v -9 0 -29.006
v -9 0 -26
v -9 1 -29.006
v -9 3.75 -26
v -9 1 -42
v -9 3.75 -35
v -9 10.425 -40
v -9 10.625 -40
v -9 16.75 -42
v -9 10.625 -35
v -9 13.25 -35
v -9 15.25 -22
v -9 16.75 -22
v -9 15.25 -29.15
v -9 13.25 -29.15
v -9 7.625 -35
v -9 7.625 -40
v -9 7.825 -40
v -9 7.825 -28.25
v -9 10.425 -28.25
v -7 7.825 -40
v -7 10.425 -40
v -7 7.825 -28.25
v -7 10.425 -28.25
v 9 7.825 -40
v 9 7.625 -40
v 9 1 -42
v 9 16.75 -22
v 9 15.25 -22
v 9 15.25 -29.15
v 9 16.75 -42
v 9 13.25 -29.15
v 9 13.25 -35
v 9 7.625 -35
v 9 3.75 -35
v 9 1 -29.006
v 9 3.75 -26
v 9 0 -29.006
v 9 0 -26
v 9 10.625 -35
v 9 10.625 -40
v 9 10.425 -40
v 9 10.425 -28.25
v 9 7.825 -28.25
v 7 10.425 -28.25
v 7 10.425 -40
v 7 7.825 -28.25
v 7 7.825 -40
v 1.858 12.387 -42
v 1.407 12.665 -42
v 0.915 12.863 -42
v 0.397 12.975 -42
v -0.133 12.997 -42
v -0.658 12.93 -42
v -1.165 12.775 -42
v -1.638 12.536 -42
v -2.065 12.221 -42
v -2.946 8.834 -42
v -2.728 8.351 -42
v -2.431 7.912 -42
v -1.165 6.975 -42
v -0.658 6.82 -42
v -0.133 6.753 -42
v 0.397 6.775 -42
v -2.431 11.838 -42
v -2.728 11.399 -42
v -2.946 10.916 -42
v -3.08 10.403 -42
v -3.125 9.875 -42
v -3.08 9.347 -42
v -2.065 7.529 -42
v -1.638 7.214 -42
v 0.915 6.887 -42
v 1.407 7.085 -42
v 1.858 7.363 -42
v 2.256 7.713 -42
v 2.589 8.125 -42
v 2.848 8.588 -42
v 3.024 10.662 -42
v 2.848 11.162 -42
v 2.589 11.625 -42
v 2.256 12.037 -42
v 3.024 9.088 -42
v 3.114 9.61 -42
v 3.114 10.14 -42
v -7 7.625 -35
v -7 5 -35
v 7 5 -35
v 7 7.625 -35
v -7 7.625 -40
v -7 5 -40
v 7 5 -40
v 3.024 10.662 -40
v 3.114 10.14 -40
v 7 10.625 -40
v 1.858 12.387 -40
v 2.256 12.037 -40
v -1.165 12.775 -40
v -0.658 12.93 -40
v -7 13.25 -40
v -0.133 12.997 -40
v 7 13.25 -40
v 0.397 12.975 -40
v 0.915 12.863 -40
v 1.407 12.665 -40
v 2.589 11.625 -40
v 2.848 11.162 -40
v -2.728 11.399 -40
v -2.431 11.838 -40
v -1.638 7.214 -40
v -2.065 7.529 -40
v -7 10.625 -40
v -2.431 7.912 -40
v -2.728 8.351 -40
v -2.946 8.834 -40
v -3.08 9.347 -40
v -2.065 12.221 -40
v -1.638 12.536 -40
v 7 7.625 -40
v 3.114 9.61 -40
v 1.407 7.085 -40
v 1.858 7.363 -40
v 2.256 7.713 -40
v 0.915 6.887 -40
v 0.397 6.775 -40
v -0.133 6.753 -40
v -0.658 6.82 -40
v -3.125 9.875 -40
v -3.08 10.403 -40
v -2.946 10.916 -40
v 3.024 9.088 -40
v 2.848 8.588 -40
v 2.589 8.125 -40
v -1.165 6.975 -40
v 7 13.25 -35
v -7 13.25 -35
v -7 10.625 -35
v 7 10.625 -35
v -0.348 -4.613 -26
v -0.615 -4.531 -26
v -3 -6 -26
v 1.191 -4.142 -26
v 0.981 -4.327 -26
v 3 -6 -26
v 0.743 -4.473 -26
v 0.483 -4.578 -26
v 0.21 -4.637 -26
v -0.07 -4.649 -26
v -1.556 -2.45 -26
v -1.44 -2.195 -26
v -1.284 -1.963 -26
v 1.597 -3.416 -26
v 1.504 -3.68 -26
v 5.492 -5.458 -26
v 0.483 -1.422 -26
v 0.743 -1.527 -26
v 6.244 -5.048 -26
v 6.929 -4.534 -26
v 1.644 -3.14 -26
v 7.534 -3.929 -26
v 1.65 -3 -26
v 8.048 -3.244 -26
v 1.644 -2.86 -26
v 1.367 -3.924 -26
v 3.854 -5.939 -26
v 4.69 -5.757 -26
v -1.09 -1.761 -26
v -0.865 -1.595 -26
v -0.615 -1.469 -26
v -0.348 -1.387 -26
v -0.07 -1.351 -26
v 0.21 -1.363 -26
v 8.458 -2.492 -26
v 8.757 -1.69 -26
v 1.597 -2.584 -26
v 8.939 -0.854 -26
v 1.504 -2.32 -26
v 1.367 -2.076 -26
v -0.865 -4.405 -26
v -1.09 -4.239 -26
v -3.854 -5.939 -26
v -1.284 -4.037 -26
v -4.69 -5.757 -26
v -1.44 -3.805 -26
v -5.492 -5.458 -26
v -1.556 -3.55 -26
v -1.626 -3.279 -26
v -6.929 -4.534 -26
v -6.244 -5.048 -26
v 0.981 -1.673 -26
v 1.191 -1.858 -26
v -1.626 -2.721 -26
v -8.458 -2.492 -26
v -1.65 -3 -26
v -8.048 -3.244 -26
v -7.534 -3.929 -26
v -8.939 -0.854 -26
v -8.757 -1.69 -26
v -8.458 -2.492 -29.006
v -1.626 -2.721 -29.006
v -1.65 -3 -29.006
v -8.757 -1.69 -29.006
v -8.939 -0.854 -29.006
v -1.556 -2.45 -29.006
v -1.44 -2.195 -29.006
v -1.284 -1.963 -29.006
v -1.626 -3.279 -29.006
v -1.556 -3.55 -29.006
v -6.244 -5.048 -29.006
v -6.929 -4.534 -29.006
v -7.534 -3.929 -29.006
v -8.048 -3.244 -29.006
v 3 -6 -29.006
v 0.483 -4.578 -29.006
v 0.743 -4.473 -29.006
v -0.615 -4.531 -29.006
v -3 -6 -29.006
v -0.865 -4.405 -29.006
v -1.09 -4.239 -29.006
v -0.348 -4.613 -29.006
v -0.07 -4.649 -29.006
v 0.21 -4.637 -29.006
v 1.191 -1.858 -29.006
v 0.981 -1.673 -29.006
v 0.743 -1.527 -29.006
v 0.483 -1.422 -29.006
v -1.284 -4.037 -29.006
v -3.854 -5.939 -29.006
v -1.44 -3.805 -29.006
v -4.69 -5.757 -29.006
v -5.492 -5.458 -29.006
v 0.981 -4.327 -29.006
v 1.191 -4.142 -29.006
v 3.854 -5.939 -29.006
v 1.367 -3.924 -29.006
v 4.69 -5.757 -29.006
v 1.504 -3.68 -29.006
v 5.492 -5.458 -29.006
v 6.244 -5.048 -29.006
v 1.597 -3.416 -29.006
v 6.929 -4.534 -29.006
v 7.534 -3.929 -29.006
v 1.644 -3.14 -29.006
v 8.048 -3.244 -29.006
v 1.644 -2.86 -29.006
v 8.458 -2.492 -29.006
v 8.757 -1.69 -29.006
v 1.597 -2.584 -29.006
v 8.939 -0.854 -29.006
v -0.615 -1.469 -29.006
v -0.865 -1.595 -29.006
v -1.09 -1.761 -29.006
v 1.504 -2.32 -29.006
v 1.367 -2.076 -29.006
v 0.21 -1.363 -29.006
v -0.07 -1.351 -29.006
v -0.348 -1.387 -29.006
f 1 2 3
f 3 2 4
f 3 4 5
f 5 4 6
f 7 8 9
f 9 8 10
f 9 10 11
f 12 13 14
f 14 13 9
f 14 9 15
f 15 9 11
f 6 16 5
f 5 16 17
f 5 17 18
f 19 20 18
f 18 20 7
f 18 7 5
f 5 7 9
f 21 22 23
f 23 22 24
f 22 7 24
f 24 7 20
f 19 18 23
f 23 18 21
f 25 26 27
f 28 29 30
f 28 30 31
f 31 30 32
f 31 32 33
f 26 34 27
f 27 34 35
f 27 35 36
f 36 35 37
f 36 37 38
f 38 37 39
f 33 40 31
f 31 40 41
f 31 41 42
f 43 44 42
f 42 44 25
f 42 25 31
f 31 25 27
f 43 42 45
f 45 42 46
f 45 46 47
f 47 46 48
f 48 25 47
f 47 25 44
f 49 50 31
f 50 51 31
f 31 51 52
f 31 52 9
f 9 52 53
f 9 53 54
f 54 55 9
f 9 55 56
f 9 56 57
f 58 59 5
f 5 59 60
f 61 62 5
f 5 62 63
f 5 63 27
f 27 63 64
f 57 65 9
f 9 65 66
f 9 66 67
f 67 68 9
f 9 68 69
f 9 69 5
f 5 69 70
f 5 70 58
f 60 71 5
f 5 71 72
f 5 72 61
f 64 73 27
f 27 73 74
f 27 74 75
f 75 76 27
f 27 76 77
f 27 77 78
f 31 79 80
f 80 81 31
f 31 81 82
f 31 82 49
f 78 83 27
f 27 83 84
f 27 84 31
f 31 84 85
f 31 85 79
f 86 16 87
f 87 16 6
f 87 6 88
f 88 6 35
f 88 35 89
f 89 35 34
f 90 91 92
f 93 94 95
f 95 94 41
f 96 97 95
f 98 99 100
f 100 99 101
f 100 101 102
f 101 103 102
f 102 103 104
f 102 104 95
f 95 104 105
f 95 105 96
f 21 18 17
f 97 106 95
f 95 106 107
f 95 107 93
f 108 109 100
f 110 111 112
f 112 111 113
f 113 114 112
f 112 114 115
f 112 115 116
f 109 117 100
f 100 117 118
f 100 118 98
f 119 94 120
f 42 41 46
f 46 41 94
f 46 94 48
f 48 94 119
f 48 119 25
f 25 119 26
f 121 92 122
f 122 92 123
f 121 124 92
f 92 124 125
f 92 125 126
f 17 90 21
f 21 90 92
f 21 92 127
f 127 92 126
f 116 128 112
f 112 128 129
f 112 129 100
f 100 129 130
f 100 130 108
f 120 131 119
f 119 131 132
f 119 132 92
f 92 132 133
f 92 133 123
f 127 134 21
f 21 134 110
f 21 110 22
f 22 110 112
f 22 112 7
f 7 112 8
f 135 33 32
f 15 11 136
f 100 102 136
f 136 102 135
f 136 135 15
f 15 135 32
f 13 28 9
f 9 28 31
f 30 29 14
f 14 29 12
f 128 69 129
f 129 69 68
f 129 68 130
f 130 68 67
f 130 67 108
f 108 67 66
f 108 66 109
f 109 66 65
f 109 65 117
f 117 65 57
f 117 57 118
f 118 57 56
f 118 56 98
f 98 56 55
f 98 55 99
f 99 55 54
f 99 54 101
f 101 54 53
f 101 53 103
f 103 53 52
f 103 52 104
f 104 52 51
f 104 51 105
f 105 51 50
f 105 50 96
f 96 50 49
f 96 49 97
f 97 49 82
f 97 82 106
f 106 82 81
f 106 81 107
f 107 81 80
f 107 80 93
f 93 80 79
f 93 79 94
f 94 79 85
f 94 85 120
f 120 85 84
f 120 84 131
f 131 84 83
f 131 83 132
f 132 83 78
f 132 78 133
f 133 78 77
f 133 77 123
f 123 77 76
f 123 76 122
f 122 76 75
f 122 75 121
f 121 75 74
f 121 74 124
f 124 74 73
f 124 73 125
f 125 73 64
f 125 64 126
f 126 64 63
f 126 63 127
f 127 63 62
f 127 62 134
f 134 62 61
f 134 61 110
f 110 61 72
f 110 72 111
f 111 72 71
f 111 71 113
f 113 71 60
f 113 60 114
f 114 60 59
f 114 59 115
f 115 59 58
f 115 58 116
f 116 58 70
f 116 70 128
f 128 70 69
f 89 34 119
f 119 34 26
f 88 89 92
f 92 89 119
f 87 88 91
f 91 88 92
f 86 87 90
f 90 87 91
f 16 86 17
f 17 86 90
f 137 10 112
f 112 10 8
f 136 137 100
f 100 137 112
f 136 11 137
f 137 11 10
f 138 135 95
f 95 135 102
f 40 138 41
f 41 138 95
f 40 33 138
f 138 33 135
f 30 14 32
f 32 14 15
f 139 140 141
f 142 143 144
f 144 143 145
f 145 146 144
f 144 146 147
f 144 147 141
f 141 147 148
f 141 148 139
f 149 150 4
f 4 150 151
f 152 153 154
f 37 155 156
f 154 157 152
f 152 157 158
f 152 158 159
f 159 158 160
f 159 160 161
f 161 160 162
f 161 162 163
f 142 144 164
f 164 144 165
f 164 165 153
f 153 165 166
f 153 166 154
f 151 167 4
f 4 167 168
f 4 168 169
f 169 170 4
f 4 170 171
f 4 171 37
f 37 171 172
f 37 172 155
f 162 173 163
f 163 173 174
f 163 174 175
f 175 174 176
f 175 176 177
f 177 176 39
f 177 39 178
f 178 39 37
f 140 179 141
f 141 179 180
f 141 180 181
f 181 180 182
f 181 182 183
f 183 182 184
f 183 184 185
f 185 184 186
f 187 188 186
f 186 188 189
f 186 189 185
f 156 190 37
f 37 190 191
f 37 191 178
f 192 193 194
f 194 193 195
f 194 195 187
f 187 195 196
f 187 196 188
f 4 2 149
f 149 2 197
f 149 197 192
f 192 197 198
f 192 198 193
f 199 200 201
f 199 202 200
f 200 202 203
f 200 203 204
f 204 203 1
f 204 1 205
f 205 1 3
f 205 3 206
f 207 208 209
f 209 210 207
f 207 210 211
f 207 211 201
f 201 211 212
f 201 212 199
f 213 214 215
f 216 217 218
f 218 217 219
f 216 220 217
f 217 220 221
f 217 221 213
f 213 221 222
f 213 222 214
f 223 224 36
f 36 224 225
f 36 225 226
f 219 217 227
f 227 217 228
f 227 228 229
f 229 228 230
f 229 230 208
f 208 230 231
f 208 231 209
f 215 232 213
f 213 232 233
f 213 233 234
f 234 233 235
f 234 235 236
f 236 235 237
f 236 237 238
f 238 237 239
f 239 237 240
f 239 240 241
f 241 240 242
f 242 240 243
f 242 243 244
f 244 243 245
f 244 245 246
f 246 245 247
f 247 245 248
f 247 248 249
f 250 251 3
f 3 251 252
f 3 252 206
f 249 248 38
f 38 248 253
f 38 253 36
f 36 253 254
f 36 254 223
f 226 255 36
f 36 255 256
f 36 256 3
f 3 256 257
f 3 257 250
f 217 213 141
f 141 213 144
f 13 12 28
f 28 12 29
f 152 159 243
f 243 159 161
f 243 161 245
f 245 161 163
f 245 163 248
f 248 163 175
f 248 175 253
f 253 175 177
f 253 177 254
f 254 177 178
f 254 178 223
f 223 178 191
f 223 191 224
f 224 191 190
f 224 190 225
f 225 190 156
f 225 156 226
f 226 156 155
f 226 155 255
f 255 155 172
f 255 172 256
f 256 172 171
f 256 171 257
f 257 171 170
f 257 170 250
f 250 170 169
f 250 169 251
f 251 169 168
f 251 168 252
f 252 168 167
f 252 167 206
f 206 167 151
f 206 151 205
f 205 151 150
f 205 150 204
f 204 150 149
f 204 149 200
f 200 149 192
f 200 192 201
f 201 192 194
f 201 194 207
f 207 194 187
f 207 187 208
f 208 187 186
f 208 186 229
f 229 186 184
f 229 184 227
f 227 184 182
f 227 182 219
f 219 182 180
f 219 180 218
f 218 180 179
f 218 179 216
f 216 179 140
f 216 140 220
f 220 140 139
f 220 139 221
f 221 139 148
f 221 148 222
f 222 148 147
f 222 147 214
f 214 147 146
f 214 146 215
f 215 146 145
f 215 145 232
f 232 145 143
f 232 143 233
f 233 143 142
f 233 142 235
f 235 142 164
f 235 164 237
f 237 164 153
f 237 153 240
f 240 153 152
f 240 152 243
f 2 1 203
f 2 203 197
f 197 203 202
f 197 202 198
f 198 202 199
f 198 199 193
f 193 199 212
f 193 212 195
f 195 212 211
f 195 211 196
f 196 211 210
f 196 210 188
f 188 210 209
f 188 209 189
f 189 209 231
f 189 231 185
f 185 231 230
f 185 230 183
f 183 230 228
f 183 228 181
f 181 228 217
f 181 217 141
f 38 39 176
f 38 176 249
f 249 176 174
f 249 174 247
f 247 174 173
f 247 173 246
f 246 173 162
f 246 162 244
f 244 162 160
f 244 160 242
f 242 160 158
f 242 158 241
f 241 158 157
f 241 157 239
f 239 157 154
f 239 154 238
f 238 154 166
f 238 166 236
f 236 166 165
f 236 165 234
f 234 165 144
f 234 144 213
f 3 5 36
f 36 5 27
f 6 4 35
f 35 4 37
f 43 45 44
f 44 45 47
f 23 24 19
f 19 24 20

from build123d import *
from build123d.topology import SkipClean

# Parameters (mm, degrees)
ESBO_O1_R                 = 1.65
RESSALTO_EXTRUS_O1_DEPTH  = 3
RESSALTO_EXTRUS_O2_START  = 15
ESBO_O2_R                 = 1.65
RESSALTO_EXTRUS_O2_DEPTH  = 15
CORTE_EXTRUS_O1_DEPTH     = 15
RESSALTO_EXTRUS_O3_DEPTH  = 2
ESBO_O6_W                 = 23.468316857
ESBO_O6_H                 = 21.298976644
CORTE_EXTRUS_O2_DEPTH     = 21
ESBO_O7_W                 = 18
ESBO_O7_H                 = 18
RESSALTO_EXTRUS_O4_DEPTH  = 2
CORTE_EXTRUS_O3_DEPTH     = 5
ESBO_O9_W                 = 18
ESBO_O9_H                 = 2
CORTE_EXTRUS_O4_DEPTH     = 8
ESBO_O10_W                = 18
ESBO_O10_H                = 12.25
RESSALTO_EXTRUS_O5_DEPTH  = 2
RESSALTO_EXTRUS_O6_DEPTH  = 5.85
ESBO_O12_W                = 2
ESBO_O12_H                = 2.6
RESSALTO_EXTRUS_O7_DEPTH  = 9.75
ESBO_O13_W                = 18
ESBO_O13_H                = 7.85
RESSALTO_EXTRUS_O8_DEPTH  = 1.5
ESBO_O14_W                = 18
ESBO_O14_H                = 1.5
RESSALTO_EXTRUS_O9_DEPTH  = 5.15
ESBO_O15_R                = 3.125
CORTE_EXTRUS_O5_DEPTH     = 5.15
ESBO_O16_W                = 2
ESBO_O16_H                = 2.625
RESSALTO_EXTRUS_O10_DEPTH = 5
ESBO_O18_W                = 2
ESBO_O18_H                = 2.6
RESSALTO_EXTRUS_O11_DEPTH = 5
ESBO_O19_W                = 18
ESBO_O19_H                = 2
RESSALTO_EXTRUS_O12_DEPTH = 5
ESBO_O20_W                = 18
ESBO_O20_H                = 1.5
RESSALTO_EXTRUS_O13_DEPTH = 5
ESBO_O21_W                = 18
ESBO_O21_H                = 7
RESSALTO_EXTRUS_O14_DEPTH = 3
ESBO_O22_W                = 18
ESBO_O22_H                = 2.75
RESSALTO_EXTRUS_O15_DEPTH = 9
ESBO_O23_W                = 18
ESBO_O23_H                = 3.006158343
RESSALTO_EXTRUS_O16_DEPTH = 6
ESBO_O24_W                = 27.560641217
ESBO_O24_H                = 36.557163592
CORTE_EXTRUS_O6_DEPTH     = 26
ESBO_O25_W                = 18
ESBO_O25_H                = 1.5
RESSALTO_EXTRUS_O17_DEPTH = 2
ESBO_O26_R                = 1.65
CORTE_EXTRUS_O7_DEPTH     = 10
FILETE1_R                 = 6
ESBO_O27_W                = 18
ESBO_O27_H                = 12.993841657
CORTE_EXTRUS_O8_DEPTH     = 1
ESBO_O28_W                = 18
ESBO_O28_H                = 9
RESSALTO_EXTRUS_O18_DEPTH = 1
ESBO_O29_W                = 2
ESBO_O29_H                = 2.6
CORTE_EXTRUS_O9_DEPTH     = 3


with BuildPart() as part:
    # Esboço1 → Ressalto-extrusão1 (new body)
    # profile 1 of 3: a face of its own
    with BuildSketch(Plane.XY):
        Polygon((-7, 15.25), (-9, 15.25), (-9, 13.25), (-9, 5), (-6.541451884, 0), (-2.020725942, -6), (2.020725942, -6), (6.541451884, 0), (9, 5), (9, 15.25), (7, 15.25), align=None)
        Polygon((2.020725942, -3.5), (4.041451884, 0), (2.020725942, 3.5), (-2.020725942, 3.5), (-4.041451884, 0), (-2.020725942, -3.5), align=None, mode=Mode.SUBTRACT)
        Polygon((-7, 13.25), (-7, 5), (0, 5), (7, 5), (7, 13.25), align=None, mode=Mode.SUBTRACT)
    # profile 2 of 3: a face of its own
    with BuildSketch(Plane.XY):
        Polygon((7, 13.25), (-7, 13.25), (-7, 5), (0, 5), (7, 5), align=None)
    # profile 3 of 3: a face of its own
    with BuildSketch(Plane.XY):
        Polygon((-2.020725942, -3.5), (2.020725942, -3.5), (4.041451884, 0), (2.020725942, 3.5), (-2.020725942, 3.5), (-4.041451884, 0), align=None)
        Circle(ESBO_O1_R, mode=Mode.SUBTRACT)
    extrude(amount=RESSALTO_EXTRUS_O1_DEPTH)

    # Esboço2 → Ressalto-extrusão2 (add)
    # profile 1 of 2: a face of its own
    with SkipClean():  # the faces are left unmerged after this step: merging them gives an invalid solid
        with BuildSketch(Plane(origin=(0, 0, 0), x_dir=(-1, 0, 0), z_dir=(0, 0, -1)).offset(RESSALTO_EXTRUS_O2_START)):
            Polygon((9, 5), (9, 15.25), (-9, 15.25), (-9, 5), (-6.541451884, 0), (-2.020725942, -6), (2.020725942, -6), (6.541451884, 0), align=None)
            Polygon((7, 5), (7, 13.25), (-7, 13.25), (-7, 5), (0, 5), align=None, mode=Mode.SUBTRACT)
            Polygon((-4.041451884, 0), (-2.020725942, -3.5), (2.020725942, -3.5), (4.041451884, 0), (2.020725942, 3.5), (-2.020725942, 3.5), align=None, mode=Mode.SUBTRACT)
        # profile 2 of 2: a face of its own
        with BuildSketch(Plane(origin=(0, 0, 0), x_dir=(-1, 0, 0), z_dir=(0, 0, -1)).offset(RESSALTO_EXTRUS_O2_START)):
            Polygon((-2.020725942, 3.5), (-4.041451884, 0), (-2.020725942, -3.5), (2.020725942, -3.5), (4.041451884, 0), (2.020725942, 3.5), align=None)
            Circle(ESBO_O2_R, mode=Mode.SUBTRACT)
        extrude(amount=-RESSALTO_EXTRUS_O2_DEPTH)

    # Esboço3 → Corte-extrusão1 (cut)
    with SkipClean():  # the faces are left unmerged after this step: merging them gives an invalid solid
        with BuildSketch(Plane(origin=(0, 0, -15), x_dir=(-1, 0, 0), z_dir=(0, 0, -1))):
            Polygon((-9, 10.625), (-9, 9.125), (-9, 7.625), (-7, 7.625), (-7, 10.625), align=None)
            Polygon((9, 7.625), (9, 9.125), (9, 10.625), (7, 10.625), (7, 7.625), align=None)
        extrude(amount=-CORTE_EXTRUS_O1_DEPTH, mode=Mode.SUBTRACT)

    # Esboço5 → Ressalto-extrusão3 (add)
    with SkipClean():  # the faces are left unmerged after this step: merging them gives an invalid solid
        with BuildSketch(Plane(origin=(0, 0, 0), x_dir=(-1, 0, 0), z_dir=(0, 0, -1))):
            Polygon((-1.583333333, 13.25), (-2.333333333, 13.25), (-3.083333333, 13.25), (-3.083333333, 5), (-1.583333333, 5), align=None)
        extrude(amount=RESSALTO_EXTRUS_O3_DEPTH)

    # Esboço6 → Corte-extrusão2 (cut)
    with BuildSketch(Plane(origin=(0, -16, 0), x_dir=(-1, 0, 0), z_dir=(0, -1, 0))):
        with Locations((-0.042259875, 5.70418088)):
            Rectangle(ESBO_O6_W, ESBO_O6_H)
    extrude(amount=-CORTE_EXTRUS_O2_DEPTH, mode=Mode.SUBTRACT)

    # Esboço7 → Ressalto-extrusão4 (add)
    with BuildSketch(Plane.XZ.offset(-5)):
        with Locations((0, -6)):
            Rectangle(ESBO_O7_W, ESBO_O7_H)
    extrude(amount=RESSALTO_EXTRUS_O4_DEPTH)

    # Esboço8 → Corte-extrusão3 (cut)
    with BuildSketch(Plane(origin=(0, 0, -15), x_dir=(-1, 0, 0), z_dir=(0, 0, -1))):
        Polygon((7, 7.625), (7, 5), (-7, 5), (-7, 7.625), (-9, 7.625), (-9, 3), (9, 3), (9, 7.625), align=None)
        Polygon((7, 10.625), (9, 10.625), (9, 15.25), (-9, 15.25), (-9, 10.625), (-7, 10.625), (-7, 13.25), (7, 13.25), align=None)
    extrude(amount=-CORTE_EXTRUS_O3_DEPTH, mode=Mode.SUBTRACT)

    # Esboço9 → Corte-extrusão4 (cut)
    with BuildSketch(Plane(origin=(0, 0, -10), x_dir=(-1, 0, 0), z_dir=(0, 0, -1))):
        with Locations((0, 14.25)):
            Rectangle(ESBO_O9_W, ESBO_O9_H)
    extrude(amount=-CORTE_EXTRUS_O4_DEPTH, mode=Mode.SUBTRACT)

    # Esboço24 → Corte-extrusão6 (cut)
    with BuildSketch(Plane.XY.offset(13)):
        with Locations((-1.631661855, 4.199263035)):
            Rectangle(ESBO_O24_W, ESBO_O24_H)
    extrude(amount=-CORTE_EXTRUS_O6_DEPTH, mode=Mode.SUBTRACT)


with BuildPart() as body_2:
    # Esboço10 → Ressalto-extrusão5 (new body)
    with BuildSketch(Plane(origin=(0, 0, -40), x_dir=(-1, 0, 0), z_dir=(0, 0, -1))):
        with Locations((0, 9.125)):
            Rectangle(ESBO_O10_W, ESBO_O10_H)
    extrude(amount=RESSALTO_EXTRUS_O5_DEPTH)

    # Esboço11 → Ressalto-extrusão6 (add)
    with BuildSketch(Plane.XY.offset(-40)):
        Polygon((9, 15.25), (-9, 15.25), (-9, 13.25), (-7, 13.25), (1.583333333, 13.25), (3.083333333, 13.25), (7, 13.25), (9, 13.25), align=None)
    extrude(amount=RESSALTO_EXTRUS_O6_DEPTH)

    # Esboço12 → Ressalto-extrusão7 (add)
    with BuildSketch(Plane.XY.offset(-40)):
        with Locations((8, 9.125)):
            Rectangle(ESBO_O12_W, ESBO_O12_H)
        with Locations((-8, 9.125)):
            Rectangle(ESBO_O12_W, ESBO_O12_H)
    extrude(amount=RESSALTO_EXTRUS_O7_DEPTH)

    # Esboço13 → Ressalto-extrusão8 (add)
    with BuildSketch(Plane(origin=(0, 15.25, 0), x_dir=(1, 0, 0), z_dir=(0, 1, 0))):
        with Locations((0, 38.075)):
            Rectangle(ESBO_O13_W, ESBO_O13_H)
    extrude(amount=RESSALTO_EXTRUS_O8_DEPTH)

    # Esboço14 → Ressalto-extrusão9 (add)
    with BuildSketch(Plane.XY.offset(-34.15)):
        with Locations((0, 16)):
            Rectangle(ESBO_O14_W, ESBO_O14_H)
    extrude(amount=RESSALTO_EXTRUS_O9_DEPTH)

    # Esboço15 → Corte-extrusão5 (cut)
    with BuildSketch(Plane(origin=(0, 0, -42), x_dir=(-1, 0, 0), z_dir=(0, 0, -1))):
        with Locations((0, 9.875)):
            Circle(ESBO_O15_R)
    extrude(amount=-CORTE_EXTRUS_O5_DEPTH, mode=Mode.SUBTRACT)

    # Esboço16 → Ressalto-extrusão10 (add)
    with BuildSketch(Plane.XY.offset(-40)):
        Polygon((-7, 7.625), (-9, 7.625), (-9, 3), (9, 3), (9, 7.625), (7, 7.625), (7, 5), (-7, 5), align=None)
        with Locations((-8, 11.9375)):
            Rectangle(ESBO_O16_W, ESBO_O16_H)
        with Locations((8, 11.9375)):
            Rectangle(ESBO_O16_W, ESBO_O16_H)
    extrude(amount=RESSALTO_EXTRUS_O10_DEPTH)

    # Esboço18 → Ressalto-extrusão11 (add)
    with BuildSketch(Plane.XY.offset(-30.25)):
        with Locations((-8, 9.125)):
            Rectangle(ESBO_O18_W, ESBO_O18_H)
        with Locations((8, 9.125)):
            Rectangle(ESBO_O18_W, ESBO_O18_H)
    extrude(amount=RESSALTO_EXTRUS_O11_DEPTH)

    # Esboço19 → Ressalto-extrusão12 (add)
    with BuildSketch(Plane.XY.offset(-34.15)):
        with Locations((0, 14.25)):
            Rectangle(ESBO_O19_W, ESBO_O19_H)
    extrude(amount=RESSALTO_EXTRUS_O12_DEPTH)

    # Esboço20 → Ressalto-extrusão13 (add)
    with BuildSketch(Plane.XY.offset(-29)):
        with Locations((0, 16)):
            Rectangle(ESBO_O20_W, ESBO_O20_H)
    extrude(amount=RESSALTO_EXTRUS_O13_DEPTH)

    # Esboço21 → Ressalto-extrusão14 (add)
    with BuildSketch(Plane.XZ.offset(-3)):
        with Locations((0, -38.5)):
            Rectangle(ESBO_O21_W, ESBO_O21_H)
    extrude(amount=RESSALTO_EXTRUS_O14_DEPTH)

    # Esboço22 → Ressalto-extrusão15 (add)
    with BuildSketch(Plane.XY.offset(-35)):
        with Locations((0, 1.375)):
            Rectangle(ESBO_O22_W, ESBO_O22_H)
    extrude(amount=RESSALTO_EXTRUS_O15_DEPTH)

    # Esboço23 → Ressalto-extrusão16 (add)
    with BuildSketch(Plane.XZ):
        with Locations((0, -27.503079172)):
            Rectangle(ESBO_O23_W, ESBO_O23_H)
    extrude(amount=RESSALTO_EXTRUS_O16_DEPTH)

    # Esboço25 → Ressalto-extrusão17 (add)
    with BuildSketch(Plane.XY.offset(-24)):
        with Locations((0, 16)):
            Rectangle(ESBO_O25_W, ESBO_O25_H)
    extrude(amount=RESSALTO_EXTRUS_O17_DEPTH)

    # Esboço26 → Corte-extrusão7 (cut)
    with BuildSketch(Plane(origin=(0, 0, -29.006158343), x_dir=(-1, 0, 0), z_dir=(0, 0, -1))):
        with Locations((0, -3)):
            Circle(ESBO_O26_R)
    extrude(amount=-CORTE_EXTRUS_O7_DEPTH, mode=Mode.SUBTRACT)

    # Filete1
    filete1_edges = [body_2.edges().sort_by_distance(p)[0] for p in [
        (-9, -6, -27.503079172),
        (9, -6, -27.503079172),
    ]]
    fillet(filete1_edges, radius=FILETE1_R)

    # Esboço27 → Corte-extrusão8 (cut)
    with BuildSketch(Plane.XZ):
        with Locations((0, -35.503079172)):
            Rectangle(ESBO_O27_W, ESBO_O27_H)
    extrude(amount=-CORTE_EXTRUS_O8_DEPTH, mode=Mode.SUBTRACT)

    # Esboço28 → Ressalto-extrusão18 (add)
    with BuildSketch(Plane(origin=(0, 2.75, 0), x_dir=(1, 0, 0), z_dir=(0, 1, 0))):
        with Locations((0, 30.5)):
            Rectangle(ESBO_O28_W, ESBO_O28_H)
    extrude(amount=RESSALTO_EXTRUS_O18_DEPTH)

    # Esboço29 → Corte-extrusão9 (cut)
    with BuildSketch(Plane.XY.offset(-25.25)):
        with Locations((8, 9.125)):
            Rectangle(ESBO_O29_W, ESBO_O29_H)
        with Locations((-8, 9.125)):
            Rectangle(ESBO_O29_W, ESBO_O29_H)
    extrude(amount=-CORTE_EXTRUS_O9_DEPTH, mode=Mode.SUBTRACT)


solid = body_2.part
